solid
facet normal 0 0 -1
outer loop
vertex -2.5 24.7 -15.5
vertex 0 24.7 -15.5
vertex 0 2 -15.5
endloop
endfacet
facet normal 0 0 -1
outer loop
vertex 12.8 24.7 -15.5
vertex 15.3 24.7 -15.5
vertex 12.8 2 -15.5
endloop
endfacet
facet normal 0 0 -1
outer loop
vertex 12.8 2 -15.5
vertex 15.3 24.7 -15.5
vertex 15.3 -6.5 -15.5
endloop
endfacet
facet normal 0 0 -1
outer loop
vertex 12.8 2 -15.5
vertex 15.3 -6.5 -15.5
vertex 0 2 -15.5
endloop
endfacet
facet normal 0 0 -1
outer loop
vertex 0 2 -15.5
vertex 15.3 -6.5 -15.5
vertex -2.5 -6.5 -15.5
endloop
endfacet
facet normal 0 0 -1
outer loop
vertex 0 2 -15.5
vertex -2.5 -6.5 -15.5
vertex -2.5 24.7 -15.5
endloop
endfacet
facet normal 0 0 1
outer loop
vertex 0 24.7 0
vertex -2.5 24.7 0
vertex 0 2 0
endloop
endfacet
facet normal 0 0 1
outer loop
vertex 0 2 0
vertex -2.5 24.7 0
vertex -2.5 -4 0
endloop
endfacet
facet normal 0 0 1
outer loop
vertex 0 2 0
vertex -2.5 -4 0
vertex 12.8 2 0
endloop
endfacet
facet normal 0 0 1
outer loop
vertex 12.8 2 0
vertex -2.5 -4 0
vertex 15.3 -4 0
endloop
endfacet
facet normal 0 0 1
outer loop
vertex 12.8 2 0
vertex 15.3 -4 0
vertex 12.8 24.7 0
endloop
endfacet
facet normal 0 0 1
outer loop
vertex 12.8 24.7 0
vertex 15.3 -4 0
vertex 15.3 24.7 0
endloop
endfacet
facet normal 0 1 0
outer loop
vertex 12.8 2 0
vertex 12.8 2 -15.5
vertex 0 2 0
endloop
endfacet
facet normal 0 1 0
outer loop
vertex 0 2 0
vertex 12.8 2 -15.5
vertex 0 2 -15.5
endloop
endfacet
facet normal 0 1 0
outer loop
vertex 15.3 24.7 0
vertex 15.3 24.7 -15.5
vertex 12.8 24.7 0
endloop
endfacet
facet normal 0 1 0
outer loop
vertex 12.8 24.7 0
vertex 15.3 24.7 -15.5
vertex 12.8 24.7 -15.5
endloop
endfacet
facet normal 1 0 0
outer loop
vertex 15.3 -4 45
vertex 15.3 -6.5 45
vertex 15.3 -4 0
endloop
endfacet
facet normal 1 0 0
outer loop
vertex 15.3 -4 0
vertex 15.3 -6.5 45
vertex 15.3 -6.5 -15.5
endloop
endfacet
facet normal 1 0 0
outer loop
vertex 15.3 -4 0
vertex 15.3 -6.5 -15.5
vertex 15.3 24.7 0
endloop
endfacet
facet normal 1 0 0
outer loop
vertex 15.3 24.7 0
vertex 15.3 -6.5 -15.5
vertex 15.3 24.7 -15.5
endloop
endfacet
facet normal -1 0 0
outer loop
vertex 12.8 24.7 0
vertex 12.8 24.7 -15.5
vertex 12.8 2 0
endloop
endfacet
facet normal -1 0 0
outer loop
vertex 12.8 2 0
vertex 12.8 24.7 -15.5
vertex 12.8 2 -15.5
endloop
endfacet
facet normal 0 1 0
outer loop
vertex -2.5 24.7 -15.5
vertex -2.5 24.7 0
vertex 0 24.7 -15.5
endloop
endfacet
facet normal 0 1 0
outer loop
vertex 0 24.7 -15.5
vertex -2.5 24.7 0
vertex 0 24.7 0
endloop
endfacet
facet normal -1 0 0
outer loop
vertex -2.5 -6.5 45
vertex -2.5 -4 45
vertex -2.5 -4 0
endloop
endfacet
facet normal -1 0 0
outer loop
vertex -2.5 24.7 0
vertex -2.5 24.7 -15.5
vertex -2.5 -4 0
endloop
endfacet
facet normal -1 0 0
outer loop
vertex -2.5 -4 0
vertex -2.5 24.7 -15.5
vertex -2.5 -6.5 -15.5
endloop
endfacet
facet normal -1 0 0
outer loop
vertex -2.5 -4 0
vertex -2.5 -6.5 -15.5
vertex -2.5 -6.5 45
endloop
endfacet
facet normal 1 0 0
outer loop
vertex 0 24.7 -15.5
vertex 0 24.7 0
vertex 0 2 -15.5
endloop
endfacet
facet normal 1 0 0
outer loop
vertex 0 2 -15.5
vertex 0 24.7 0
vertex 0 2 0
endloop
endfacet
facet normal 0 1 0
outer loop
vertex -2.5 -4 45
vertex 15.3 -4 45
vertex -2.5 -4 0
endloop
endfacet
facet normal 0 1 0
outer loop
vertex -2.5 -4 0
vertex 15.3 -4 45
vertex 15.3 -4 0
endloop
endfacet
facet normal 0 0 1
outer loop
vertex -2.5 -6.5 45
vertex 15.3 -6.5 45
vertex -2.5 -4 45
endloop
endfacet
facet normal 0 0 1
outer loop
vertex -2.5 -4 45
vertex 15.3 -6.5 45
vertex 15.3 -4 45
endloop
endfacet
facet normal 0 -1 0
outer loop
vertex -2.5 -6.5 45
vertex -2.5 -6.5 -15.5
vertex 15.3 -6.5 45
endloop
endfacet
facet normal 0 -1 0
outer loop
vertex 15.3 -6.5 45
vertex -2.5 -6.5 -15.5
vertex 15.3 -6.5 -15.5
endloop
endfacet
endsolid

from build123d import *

# Parameters (mm, degrees)
BOSS_EXTRUDE1_DEPTH      = 2
BOSS_EXTRUDE1_DEPTH_BACK = 4
SKETCH1_W                = 12.8
SKETCH1_H                = 15.5
SKETCH2_W                = 15.5
SKETCH2_H                = 4
SKETCH2_H_2              = 22.7
SKETCH2_H_3              = 2
BOSS_EXTRUDE2_DEPTH      = 2.5
BOSS_EXTRUDE3_DEPTH      = 2.5
SKETCH5_W                = 17.8
SKETCH5_H                = 60.5
BOSS_EXTRUDE5_DEPTH      = 2.5


with BuildPart() as part:
    # Sketch1 → Boss-Extrude1 (new, two sides: drawn at the far end of the back side and taken through both)
    with BuildSketch(Plane(origin=(0, 0, 0), x_dir=(1, 0, 0), z_dir=(0, 1, 0)).offset(-BOSS_EXTRUDE1_DEPTH_BACK)):
        with Locations((6.4, 7.75)):
            Rectangle(SKETCH1_W, SKETCH1_H)
    extrude(amount=BOSS_EXTRUDE1_DEPTH + BOSS_EXTRUDE1_DEPTH_BACK)

    # Sketch2 → Boss-Extrude2 (add)
    with BuildSketch(Plane(origin=(12.8, 0, 0), x_dir=(0, 0, -1), z_dir=(1, 0, 0))):
        with Locations((7.75, -2)):
            Rectangle(SKETCH2_W, SKETCH2_H)
        with Locations((7.75, 13.35)):
            Rectangle(SKETCH2_W, SKETCH2_H_2)
        with Locations((7.75, 1)):
            Rectangle(SKETCH2_W, SKETCH2_H_3)
    extrude(amount=BOSS_EXTRUDE2_DEPTH)

    # Sketch3 → Boss-Extrude3 (add)
    with BuildSketch(Plane.ZY):
        Polygon((0, 0), (0, 24.7), (-15.5, 24.7), (-15.5, 0), (-15.5, -4), (0, -4), align=None)
    extrude(amount=BOSS_EXTRUDE3_DEPTH)

    # Sketch5 → Boss-Extrude5 (add)
    with BuildSketch(Plane.XZ.offset(4)):
        with Locations((6.4, 14.75)):
            Rectangle(SKETCH5_W, SKETCH5_H)
    extrude(amount=BOSS_EXTRUDE5_DEPTH)


solid = part.part
